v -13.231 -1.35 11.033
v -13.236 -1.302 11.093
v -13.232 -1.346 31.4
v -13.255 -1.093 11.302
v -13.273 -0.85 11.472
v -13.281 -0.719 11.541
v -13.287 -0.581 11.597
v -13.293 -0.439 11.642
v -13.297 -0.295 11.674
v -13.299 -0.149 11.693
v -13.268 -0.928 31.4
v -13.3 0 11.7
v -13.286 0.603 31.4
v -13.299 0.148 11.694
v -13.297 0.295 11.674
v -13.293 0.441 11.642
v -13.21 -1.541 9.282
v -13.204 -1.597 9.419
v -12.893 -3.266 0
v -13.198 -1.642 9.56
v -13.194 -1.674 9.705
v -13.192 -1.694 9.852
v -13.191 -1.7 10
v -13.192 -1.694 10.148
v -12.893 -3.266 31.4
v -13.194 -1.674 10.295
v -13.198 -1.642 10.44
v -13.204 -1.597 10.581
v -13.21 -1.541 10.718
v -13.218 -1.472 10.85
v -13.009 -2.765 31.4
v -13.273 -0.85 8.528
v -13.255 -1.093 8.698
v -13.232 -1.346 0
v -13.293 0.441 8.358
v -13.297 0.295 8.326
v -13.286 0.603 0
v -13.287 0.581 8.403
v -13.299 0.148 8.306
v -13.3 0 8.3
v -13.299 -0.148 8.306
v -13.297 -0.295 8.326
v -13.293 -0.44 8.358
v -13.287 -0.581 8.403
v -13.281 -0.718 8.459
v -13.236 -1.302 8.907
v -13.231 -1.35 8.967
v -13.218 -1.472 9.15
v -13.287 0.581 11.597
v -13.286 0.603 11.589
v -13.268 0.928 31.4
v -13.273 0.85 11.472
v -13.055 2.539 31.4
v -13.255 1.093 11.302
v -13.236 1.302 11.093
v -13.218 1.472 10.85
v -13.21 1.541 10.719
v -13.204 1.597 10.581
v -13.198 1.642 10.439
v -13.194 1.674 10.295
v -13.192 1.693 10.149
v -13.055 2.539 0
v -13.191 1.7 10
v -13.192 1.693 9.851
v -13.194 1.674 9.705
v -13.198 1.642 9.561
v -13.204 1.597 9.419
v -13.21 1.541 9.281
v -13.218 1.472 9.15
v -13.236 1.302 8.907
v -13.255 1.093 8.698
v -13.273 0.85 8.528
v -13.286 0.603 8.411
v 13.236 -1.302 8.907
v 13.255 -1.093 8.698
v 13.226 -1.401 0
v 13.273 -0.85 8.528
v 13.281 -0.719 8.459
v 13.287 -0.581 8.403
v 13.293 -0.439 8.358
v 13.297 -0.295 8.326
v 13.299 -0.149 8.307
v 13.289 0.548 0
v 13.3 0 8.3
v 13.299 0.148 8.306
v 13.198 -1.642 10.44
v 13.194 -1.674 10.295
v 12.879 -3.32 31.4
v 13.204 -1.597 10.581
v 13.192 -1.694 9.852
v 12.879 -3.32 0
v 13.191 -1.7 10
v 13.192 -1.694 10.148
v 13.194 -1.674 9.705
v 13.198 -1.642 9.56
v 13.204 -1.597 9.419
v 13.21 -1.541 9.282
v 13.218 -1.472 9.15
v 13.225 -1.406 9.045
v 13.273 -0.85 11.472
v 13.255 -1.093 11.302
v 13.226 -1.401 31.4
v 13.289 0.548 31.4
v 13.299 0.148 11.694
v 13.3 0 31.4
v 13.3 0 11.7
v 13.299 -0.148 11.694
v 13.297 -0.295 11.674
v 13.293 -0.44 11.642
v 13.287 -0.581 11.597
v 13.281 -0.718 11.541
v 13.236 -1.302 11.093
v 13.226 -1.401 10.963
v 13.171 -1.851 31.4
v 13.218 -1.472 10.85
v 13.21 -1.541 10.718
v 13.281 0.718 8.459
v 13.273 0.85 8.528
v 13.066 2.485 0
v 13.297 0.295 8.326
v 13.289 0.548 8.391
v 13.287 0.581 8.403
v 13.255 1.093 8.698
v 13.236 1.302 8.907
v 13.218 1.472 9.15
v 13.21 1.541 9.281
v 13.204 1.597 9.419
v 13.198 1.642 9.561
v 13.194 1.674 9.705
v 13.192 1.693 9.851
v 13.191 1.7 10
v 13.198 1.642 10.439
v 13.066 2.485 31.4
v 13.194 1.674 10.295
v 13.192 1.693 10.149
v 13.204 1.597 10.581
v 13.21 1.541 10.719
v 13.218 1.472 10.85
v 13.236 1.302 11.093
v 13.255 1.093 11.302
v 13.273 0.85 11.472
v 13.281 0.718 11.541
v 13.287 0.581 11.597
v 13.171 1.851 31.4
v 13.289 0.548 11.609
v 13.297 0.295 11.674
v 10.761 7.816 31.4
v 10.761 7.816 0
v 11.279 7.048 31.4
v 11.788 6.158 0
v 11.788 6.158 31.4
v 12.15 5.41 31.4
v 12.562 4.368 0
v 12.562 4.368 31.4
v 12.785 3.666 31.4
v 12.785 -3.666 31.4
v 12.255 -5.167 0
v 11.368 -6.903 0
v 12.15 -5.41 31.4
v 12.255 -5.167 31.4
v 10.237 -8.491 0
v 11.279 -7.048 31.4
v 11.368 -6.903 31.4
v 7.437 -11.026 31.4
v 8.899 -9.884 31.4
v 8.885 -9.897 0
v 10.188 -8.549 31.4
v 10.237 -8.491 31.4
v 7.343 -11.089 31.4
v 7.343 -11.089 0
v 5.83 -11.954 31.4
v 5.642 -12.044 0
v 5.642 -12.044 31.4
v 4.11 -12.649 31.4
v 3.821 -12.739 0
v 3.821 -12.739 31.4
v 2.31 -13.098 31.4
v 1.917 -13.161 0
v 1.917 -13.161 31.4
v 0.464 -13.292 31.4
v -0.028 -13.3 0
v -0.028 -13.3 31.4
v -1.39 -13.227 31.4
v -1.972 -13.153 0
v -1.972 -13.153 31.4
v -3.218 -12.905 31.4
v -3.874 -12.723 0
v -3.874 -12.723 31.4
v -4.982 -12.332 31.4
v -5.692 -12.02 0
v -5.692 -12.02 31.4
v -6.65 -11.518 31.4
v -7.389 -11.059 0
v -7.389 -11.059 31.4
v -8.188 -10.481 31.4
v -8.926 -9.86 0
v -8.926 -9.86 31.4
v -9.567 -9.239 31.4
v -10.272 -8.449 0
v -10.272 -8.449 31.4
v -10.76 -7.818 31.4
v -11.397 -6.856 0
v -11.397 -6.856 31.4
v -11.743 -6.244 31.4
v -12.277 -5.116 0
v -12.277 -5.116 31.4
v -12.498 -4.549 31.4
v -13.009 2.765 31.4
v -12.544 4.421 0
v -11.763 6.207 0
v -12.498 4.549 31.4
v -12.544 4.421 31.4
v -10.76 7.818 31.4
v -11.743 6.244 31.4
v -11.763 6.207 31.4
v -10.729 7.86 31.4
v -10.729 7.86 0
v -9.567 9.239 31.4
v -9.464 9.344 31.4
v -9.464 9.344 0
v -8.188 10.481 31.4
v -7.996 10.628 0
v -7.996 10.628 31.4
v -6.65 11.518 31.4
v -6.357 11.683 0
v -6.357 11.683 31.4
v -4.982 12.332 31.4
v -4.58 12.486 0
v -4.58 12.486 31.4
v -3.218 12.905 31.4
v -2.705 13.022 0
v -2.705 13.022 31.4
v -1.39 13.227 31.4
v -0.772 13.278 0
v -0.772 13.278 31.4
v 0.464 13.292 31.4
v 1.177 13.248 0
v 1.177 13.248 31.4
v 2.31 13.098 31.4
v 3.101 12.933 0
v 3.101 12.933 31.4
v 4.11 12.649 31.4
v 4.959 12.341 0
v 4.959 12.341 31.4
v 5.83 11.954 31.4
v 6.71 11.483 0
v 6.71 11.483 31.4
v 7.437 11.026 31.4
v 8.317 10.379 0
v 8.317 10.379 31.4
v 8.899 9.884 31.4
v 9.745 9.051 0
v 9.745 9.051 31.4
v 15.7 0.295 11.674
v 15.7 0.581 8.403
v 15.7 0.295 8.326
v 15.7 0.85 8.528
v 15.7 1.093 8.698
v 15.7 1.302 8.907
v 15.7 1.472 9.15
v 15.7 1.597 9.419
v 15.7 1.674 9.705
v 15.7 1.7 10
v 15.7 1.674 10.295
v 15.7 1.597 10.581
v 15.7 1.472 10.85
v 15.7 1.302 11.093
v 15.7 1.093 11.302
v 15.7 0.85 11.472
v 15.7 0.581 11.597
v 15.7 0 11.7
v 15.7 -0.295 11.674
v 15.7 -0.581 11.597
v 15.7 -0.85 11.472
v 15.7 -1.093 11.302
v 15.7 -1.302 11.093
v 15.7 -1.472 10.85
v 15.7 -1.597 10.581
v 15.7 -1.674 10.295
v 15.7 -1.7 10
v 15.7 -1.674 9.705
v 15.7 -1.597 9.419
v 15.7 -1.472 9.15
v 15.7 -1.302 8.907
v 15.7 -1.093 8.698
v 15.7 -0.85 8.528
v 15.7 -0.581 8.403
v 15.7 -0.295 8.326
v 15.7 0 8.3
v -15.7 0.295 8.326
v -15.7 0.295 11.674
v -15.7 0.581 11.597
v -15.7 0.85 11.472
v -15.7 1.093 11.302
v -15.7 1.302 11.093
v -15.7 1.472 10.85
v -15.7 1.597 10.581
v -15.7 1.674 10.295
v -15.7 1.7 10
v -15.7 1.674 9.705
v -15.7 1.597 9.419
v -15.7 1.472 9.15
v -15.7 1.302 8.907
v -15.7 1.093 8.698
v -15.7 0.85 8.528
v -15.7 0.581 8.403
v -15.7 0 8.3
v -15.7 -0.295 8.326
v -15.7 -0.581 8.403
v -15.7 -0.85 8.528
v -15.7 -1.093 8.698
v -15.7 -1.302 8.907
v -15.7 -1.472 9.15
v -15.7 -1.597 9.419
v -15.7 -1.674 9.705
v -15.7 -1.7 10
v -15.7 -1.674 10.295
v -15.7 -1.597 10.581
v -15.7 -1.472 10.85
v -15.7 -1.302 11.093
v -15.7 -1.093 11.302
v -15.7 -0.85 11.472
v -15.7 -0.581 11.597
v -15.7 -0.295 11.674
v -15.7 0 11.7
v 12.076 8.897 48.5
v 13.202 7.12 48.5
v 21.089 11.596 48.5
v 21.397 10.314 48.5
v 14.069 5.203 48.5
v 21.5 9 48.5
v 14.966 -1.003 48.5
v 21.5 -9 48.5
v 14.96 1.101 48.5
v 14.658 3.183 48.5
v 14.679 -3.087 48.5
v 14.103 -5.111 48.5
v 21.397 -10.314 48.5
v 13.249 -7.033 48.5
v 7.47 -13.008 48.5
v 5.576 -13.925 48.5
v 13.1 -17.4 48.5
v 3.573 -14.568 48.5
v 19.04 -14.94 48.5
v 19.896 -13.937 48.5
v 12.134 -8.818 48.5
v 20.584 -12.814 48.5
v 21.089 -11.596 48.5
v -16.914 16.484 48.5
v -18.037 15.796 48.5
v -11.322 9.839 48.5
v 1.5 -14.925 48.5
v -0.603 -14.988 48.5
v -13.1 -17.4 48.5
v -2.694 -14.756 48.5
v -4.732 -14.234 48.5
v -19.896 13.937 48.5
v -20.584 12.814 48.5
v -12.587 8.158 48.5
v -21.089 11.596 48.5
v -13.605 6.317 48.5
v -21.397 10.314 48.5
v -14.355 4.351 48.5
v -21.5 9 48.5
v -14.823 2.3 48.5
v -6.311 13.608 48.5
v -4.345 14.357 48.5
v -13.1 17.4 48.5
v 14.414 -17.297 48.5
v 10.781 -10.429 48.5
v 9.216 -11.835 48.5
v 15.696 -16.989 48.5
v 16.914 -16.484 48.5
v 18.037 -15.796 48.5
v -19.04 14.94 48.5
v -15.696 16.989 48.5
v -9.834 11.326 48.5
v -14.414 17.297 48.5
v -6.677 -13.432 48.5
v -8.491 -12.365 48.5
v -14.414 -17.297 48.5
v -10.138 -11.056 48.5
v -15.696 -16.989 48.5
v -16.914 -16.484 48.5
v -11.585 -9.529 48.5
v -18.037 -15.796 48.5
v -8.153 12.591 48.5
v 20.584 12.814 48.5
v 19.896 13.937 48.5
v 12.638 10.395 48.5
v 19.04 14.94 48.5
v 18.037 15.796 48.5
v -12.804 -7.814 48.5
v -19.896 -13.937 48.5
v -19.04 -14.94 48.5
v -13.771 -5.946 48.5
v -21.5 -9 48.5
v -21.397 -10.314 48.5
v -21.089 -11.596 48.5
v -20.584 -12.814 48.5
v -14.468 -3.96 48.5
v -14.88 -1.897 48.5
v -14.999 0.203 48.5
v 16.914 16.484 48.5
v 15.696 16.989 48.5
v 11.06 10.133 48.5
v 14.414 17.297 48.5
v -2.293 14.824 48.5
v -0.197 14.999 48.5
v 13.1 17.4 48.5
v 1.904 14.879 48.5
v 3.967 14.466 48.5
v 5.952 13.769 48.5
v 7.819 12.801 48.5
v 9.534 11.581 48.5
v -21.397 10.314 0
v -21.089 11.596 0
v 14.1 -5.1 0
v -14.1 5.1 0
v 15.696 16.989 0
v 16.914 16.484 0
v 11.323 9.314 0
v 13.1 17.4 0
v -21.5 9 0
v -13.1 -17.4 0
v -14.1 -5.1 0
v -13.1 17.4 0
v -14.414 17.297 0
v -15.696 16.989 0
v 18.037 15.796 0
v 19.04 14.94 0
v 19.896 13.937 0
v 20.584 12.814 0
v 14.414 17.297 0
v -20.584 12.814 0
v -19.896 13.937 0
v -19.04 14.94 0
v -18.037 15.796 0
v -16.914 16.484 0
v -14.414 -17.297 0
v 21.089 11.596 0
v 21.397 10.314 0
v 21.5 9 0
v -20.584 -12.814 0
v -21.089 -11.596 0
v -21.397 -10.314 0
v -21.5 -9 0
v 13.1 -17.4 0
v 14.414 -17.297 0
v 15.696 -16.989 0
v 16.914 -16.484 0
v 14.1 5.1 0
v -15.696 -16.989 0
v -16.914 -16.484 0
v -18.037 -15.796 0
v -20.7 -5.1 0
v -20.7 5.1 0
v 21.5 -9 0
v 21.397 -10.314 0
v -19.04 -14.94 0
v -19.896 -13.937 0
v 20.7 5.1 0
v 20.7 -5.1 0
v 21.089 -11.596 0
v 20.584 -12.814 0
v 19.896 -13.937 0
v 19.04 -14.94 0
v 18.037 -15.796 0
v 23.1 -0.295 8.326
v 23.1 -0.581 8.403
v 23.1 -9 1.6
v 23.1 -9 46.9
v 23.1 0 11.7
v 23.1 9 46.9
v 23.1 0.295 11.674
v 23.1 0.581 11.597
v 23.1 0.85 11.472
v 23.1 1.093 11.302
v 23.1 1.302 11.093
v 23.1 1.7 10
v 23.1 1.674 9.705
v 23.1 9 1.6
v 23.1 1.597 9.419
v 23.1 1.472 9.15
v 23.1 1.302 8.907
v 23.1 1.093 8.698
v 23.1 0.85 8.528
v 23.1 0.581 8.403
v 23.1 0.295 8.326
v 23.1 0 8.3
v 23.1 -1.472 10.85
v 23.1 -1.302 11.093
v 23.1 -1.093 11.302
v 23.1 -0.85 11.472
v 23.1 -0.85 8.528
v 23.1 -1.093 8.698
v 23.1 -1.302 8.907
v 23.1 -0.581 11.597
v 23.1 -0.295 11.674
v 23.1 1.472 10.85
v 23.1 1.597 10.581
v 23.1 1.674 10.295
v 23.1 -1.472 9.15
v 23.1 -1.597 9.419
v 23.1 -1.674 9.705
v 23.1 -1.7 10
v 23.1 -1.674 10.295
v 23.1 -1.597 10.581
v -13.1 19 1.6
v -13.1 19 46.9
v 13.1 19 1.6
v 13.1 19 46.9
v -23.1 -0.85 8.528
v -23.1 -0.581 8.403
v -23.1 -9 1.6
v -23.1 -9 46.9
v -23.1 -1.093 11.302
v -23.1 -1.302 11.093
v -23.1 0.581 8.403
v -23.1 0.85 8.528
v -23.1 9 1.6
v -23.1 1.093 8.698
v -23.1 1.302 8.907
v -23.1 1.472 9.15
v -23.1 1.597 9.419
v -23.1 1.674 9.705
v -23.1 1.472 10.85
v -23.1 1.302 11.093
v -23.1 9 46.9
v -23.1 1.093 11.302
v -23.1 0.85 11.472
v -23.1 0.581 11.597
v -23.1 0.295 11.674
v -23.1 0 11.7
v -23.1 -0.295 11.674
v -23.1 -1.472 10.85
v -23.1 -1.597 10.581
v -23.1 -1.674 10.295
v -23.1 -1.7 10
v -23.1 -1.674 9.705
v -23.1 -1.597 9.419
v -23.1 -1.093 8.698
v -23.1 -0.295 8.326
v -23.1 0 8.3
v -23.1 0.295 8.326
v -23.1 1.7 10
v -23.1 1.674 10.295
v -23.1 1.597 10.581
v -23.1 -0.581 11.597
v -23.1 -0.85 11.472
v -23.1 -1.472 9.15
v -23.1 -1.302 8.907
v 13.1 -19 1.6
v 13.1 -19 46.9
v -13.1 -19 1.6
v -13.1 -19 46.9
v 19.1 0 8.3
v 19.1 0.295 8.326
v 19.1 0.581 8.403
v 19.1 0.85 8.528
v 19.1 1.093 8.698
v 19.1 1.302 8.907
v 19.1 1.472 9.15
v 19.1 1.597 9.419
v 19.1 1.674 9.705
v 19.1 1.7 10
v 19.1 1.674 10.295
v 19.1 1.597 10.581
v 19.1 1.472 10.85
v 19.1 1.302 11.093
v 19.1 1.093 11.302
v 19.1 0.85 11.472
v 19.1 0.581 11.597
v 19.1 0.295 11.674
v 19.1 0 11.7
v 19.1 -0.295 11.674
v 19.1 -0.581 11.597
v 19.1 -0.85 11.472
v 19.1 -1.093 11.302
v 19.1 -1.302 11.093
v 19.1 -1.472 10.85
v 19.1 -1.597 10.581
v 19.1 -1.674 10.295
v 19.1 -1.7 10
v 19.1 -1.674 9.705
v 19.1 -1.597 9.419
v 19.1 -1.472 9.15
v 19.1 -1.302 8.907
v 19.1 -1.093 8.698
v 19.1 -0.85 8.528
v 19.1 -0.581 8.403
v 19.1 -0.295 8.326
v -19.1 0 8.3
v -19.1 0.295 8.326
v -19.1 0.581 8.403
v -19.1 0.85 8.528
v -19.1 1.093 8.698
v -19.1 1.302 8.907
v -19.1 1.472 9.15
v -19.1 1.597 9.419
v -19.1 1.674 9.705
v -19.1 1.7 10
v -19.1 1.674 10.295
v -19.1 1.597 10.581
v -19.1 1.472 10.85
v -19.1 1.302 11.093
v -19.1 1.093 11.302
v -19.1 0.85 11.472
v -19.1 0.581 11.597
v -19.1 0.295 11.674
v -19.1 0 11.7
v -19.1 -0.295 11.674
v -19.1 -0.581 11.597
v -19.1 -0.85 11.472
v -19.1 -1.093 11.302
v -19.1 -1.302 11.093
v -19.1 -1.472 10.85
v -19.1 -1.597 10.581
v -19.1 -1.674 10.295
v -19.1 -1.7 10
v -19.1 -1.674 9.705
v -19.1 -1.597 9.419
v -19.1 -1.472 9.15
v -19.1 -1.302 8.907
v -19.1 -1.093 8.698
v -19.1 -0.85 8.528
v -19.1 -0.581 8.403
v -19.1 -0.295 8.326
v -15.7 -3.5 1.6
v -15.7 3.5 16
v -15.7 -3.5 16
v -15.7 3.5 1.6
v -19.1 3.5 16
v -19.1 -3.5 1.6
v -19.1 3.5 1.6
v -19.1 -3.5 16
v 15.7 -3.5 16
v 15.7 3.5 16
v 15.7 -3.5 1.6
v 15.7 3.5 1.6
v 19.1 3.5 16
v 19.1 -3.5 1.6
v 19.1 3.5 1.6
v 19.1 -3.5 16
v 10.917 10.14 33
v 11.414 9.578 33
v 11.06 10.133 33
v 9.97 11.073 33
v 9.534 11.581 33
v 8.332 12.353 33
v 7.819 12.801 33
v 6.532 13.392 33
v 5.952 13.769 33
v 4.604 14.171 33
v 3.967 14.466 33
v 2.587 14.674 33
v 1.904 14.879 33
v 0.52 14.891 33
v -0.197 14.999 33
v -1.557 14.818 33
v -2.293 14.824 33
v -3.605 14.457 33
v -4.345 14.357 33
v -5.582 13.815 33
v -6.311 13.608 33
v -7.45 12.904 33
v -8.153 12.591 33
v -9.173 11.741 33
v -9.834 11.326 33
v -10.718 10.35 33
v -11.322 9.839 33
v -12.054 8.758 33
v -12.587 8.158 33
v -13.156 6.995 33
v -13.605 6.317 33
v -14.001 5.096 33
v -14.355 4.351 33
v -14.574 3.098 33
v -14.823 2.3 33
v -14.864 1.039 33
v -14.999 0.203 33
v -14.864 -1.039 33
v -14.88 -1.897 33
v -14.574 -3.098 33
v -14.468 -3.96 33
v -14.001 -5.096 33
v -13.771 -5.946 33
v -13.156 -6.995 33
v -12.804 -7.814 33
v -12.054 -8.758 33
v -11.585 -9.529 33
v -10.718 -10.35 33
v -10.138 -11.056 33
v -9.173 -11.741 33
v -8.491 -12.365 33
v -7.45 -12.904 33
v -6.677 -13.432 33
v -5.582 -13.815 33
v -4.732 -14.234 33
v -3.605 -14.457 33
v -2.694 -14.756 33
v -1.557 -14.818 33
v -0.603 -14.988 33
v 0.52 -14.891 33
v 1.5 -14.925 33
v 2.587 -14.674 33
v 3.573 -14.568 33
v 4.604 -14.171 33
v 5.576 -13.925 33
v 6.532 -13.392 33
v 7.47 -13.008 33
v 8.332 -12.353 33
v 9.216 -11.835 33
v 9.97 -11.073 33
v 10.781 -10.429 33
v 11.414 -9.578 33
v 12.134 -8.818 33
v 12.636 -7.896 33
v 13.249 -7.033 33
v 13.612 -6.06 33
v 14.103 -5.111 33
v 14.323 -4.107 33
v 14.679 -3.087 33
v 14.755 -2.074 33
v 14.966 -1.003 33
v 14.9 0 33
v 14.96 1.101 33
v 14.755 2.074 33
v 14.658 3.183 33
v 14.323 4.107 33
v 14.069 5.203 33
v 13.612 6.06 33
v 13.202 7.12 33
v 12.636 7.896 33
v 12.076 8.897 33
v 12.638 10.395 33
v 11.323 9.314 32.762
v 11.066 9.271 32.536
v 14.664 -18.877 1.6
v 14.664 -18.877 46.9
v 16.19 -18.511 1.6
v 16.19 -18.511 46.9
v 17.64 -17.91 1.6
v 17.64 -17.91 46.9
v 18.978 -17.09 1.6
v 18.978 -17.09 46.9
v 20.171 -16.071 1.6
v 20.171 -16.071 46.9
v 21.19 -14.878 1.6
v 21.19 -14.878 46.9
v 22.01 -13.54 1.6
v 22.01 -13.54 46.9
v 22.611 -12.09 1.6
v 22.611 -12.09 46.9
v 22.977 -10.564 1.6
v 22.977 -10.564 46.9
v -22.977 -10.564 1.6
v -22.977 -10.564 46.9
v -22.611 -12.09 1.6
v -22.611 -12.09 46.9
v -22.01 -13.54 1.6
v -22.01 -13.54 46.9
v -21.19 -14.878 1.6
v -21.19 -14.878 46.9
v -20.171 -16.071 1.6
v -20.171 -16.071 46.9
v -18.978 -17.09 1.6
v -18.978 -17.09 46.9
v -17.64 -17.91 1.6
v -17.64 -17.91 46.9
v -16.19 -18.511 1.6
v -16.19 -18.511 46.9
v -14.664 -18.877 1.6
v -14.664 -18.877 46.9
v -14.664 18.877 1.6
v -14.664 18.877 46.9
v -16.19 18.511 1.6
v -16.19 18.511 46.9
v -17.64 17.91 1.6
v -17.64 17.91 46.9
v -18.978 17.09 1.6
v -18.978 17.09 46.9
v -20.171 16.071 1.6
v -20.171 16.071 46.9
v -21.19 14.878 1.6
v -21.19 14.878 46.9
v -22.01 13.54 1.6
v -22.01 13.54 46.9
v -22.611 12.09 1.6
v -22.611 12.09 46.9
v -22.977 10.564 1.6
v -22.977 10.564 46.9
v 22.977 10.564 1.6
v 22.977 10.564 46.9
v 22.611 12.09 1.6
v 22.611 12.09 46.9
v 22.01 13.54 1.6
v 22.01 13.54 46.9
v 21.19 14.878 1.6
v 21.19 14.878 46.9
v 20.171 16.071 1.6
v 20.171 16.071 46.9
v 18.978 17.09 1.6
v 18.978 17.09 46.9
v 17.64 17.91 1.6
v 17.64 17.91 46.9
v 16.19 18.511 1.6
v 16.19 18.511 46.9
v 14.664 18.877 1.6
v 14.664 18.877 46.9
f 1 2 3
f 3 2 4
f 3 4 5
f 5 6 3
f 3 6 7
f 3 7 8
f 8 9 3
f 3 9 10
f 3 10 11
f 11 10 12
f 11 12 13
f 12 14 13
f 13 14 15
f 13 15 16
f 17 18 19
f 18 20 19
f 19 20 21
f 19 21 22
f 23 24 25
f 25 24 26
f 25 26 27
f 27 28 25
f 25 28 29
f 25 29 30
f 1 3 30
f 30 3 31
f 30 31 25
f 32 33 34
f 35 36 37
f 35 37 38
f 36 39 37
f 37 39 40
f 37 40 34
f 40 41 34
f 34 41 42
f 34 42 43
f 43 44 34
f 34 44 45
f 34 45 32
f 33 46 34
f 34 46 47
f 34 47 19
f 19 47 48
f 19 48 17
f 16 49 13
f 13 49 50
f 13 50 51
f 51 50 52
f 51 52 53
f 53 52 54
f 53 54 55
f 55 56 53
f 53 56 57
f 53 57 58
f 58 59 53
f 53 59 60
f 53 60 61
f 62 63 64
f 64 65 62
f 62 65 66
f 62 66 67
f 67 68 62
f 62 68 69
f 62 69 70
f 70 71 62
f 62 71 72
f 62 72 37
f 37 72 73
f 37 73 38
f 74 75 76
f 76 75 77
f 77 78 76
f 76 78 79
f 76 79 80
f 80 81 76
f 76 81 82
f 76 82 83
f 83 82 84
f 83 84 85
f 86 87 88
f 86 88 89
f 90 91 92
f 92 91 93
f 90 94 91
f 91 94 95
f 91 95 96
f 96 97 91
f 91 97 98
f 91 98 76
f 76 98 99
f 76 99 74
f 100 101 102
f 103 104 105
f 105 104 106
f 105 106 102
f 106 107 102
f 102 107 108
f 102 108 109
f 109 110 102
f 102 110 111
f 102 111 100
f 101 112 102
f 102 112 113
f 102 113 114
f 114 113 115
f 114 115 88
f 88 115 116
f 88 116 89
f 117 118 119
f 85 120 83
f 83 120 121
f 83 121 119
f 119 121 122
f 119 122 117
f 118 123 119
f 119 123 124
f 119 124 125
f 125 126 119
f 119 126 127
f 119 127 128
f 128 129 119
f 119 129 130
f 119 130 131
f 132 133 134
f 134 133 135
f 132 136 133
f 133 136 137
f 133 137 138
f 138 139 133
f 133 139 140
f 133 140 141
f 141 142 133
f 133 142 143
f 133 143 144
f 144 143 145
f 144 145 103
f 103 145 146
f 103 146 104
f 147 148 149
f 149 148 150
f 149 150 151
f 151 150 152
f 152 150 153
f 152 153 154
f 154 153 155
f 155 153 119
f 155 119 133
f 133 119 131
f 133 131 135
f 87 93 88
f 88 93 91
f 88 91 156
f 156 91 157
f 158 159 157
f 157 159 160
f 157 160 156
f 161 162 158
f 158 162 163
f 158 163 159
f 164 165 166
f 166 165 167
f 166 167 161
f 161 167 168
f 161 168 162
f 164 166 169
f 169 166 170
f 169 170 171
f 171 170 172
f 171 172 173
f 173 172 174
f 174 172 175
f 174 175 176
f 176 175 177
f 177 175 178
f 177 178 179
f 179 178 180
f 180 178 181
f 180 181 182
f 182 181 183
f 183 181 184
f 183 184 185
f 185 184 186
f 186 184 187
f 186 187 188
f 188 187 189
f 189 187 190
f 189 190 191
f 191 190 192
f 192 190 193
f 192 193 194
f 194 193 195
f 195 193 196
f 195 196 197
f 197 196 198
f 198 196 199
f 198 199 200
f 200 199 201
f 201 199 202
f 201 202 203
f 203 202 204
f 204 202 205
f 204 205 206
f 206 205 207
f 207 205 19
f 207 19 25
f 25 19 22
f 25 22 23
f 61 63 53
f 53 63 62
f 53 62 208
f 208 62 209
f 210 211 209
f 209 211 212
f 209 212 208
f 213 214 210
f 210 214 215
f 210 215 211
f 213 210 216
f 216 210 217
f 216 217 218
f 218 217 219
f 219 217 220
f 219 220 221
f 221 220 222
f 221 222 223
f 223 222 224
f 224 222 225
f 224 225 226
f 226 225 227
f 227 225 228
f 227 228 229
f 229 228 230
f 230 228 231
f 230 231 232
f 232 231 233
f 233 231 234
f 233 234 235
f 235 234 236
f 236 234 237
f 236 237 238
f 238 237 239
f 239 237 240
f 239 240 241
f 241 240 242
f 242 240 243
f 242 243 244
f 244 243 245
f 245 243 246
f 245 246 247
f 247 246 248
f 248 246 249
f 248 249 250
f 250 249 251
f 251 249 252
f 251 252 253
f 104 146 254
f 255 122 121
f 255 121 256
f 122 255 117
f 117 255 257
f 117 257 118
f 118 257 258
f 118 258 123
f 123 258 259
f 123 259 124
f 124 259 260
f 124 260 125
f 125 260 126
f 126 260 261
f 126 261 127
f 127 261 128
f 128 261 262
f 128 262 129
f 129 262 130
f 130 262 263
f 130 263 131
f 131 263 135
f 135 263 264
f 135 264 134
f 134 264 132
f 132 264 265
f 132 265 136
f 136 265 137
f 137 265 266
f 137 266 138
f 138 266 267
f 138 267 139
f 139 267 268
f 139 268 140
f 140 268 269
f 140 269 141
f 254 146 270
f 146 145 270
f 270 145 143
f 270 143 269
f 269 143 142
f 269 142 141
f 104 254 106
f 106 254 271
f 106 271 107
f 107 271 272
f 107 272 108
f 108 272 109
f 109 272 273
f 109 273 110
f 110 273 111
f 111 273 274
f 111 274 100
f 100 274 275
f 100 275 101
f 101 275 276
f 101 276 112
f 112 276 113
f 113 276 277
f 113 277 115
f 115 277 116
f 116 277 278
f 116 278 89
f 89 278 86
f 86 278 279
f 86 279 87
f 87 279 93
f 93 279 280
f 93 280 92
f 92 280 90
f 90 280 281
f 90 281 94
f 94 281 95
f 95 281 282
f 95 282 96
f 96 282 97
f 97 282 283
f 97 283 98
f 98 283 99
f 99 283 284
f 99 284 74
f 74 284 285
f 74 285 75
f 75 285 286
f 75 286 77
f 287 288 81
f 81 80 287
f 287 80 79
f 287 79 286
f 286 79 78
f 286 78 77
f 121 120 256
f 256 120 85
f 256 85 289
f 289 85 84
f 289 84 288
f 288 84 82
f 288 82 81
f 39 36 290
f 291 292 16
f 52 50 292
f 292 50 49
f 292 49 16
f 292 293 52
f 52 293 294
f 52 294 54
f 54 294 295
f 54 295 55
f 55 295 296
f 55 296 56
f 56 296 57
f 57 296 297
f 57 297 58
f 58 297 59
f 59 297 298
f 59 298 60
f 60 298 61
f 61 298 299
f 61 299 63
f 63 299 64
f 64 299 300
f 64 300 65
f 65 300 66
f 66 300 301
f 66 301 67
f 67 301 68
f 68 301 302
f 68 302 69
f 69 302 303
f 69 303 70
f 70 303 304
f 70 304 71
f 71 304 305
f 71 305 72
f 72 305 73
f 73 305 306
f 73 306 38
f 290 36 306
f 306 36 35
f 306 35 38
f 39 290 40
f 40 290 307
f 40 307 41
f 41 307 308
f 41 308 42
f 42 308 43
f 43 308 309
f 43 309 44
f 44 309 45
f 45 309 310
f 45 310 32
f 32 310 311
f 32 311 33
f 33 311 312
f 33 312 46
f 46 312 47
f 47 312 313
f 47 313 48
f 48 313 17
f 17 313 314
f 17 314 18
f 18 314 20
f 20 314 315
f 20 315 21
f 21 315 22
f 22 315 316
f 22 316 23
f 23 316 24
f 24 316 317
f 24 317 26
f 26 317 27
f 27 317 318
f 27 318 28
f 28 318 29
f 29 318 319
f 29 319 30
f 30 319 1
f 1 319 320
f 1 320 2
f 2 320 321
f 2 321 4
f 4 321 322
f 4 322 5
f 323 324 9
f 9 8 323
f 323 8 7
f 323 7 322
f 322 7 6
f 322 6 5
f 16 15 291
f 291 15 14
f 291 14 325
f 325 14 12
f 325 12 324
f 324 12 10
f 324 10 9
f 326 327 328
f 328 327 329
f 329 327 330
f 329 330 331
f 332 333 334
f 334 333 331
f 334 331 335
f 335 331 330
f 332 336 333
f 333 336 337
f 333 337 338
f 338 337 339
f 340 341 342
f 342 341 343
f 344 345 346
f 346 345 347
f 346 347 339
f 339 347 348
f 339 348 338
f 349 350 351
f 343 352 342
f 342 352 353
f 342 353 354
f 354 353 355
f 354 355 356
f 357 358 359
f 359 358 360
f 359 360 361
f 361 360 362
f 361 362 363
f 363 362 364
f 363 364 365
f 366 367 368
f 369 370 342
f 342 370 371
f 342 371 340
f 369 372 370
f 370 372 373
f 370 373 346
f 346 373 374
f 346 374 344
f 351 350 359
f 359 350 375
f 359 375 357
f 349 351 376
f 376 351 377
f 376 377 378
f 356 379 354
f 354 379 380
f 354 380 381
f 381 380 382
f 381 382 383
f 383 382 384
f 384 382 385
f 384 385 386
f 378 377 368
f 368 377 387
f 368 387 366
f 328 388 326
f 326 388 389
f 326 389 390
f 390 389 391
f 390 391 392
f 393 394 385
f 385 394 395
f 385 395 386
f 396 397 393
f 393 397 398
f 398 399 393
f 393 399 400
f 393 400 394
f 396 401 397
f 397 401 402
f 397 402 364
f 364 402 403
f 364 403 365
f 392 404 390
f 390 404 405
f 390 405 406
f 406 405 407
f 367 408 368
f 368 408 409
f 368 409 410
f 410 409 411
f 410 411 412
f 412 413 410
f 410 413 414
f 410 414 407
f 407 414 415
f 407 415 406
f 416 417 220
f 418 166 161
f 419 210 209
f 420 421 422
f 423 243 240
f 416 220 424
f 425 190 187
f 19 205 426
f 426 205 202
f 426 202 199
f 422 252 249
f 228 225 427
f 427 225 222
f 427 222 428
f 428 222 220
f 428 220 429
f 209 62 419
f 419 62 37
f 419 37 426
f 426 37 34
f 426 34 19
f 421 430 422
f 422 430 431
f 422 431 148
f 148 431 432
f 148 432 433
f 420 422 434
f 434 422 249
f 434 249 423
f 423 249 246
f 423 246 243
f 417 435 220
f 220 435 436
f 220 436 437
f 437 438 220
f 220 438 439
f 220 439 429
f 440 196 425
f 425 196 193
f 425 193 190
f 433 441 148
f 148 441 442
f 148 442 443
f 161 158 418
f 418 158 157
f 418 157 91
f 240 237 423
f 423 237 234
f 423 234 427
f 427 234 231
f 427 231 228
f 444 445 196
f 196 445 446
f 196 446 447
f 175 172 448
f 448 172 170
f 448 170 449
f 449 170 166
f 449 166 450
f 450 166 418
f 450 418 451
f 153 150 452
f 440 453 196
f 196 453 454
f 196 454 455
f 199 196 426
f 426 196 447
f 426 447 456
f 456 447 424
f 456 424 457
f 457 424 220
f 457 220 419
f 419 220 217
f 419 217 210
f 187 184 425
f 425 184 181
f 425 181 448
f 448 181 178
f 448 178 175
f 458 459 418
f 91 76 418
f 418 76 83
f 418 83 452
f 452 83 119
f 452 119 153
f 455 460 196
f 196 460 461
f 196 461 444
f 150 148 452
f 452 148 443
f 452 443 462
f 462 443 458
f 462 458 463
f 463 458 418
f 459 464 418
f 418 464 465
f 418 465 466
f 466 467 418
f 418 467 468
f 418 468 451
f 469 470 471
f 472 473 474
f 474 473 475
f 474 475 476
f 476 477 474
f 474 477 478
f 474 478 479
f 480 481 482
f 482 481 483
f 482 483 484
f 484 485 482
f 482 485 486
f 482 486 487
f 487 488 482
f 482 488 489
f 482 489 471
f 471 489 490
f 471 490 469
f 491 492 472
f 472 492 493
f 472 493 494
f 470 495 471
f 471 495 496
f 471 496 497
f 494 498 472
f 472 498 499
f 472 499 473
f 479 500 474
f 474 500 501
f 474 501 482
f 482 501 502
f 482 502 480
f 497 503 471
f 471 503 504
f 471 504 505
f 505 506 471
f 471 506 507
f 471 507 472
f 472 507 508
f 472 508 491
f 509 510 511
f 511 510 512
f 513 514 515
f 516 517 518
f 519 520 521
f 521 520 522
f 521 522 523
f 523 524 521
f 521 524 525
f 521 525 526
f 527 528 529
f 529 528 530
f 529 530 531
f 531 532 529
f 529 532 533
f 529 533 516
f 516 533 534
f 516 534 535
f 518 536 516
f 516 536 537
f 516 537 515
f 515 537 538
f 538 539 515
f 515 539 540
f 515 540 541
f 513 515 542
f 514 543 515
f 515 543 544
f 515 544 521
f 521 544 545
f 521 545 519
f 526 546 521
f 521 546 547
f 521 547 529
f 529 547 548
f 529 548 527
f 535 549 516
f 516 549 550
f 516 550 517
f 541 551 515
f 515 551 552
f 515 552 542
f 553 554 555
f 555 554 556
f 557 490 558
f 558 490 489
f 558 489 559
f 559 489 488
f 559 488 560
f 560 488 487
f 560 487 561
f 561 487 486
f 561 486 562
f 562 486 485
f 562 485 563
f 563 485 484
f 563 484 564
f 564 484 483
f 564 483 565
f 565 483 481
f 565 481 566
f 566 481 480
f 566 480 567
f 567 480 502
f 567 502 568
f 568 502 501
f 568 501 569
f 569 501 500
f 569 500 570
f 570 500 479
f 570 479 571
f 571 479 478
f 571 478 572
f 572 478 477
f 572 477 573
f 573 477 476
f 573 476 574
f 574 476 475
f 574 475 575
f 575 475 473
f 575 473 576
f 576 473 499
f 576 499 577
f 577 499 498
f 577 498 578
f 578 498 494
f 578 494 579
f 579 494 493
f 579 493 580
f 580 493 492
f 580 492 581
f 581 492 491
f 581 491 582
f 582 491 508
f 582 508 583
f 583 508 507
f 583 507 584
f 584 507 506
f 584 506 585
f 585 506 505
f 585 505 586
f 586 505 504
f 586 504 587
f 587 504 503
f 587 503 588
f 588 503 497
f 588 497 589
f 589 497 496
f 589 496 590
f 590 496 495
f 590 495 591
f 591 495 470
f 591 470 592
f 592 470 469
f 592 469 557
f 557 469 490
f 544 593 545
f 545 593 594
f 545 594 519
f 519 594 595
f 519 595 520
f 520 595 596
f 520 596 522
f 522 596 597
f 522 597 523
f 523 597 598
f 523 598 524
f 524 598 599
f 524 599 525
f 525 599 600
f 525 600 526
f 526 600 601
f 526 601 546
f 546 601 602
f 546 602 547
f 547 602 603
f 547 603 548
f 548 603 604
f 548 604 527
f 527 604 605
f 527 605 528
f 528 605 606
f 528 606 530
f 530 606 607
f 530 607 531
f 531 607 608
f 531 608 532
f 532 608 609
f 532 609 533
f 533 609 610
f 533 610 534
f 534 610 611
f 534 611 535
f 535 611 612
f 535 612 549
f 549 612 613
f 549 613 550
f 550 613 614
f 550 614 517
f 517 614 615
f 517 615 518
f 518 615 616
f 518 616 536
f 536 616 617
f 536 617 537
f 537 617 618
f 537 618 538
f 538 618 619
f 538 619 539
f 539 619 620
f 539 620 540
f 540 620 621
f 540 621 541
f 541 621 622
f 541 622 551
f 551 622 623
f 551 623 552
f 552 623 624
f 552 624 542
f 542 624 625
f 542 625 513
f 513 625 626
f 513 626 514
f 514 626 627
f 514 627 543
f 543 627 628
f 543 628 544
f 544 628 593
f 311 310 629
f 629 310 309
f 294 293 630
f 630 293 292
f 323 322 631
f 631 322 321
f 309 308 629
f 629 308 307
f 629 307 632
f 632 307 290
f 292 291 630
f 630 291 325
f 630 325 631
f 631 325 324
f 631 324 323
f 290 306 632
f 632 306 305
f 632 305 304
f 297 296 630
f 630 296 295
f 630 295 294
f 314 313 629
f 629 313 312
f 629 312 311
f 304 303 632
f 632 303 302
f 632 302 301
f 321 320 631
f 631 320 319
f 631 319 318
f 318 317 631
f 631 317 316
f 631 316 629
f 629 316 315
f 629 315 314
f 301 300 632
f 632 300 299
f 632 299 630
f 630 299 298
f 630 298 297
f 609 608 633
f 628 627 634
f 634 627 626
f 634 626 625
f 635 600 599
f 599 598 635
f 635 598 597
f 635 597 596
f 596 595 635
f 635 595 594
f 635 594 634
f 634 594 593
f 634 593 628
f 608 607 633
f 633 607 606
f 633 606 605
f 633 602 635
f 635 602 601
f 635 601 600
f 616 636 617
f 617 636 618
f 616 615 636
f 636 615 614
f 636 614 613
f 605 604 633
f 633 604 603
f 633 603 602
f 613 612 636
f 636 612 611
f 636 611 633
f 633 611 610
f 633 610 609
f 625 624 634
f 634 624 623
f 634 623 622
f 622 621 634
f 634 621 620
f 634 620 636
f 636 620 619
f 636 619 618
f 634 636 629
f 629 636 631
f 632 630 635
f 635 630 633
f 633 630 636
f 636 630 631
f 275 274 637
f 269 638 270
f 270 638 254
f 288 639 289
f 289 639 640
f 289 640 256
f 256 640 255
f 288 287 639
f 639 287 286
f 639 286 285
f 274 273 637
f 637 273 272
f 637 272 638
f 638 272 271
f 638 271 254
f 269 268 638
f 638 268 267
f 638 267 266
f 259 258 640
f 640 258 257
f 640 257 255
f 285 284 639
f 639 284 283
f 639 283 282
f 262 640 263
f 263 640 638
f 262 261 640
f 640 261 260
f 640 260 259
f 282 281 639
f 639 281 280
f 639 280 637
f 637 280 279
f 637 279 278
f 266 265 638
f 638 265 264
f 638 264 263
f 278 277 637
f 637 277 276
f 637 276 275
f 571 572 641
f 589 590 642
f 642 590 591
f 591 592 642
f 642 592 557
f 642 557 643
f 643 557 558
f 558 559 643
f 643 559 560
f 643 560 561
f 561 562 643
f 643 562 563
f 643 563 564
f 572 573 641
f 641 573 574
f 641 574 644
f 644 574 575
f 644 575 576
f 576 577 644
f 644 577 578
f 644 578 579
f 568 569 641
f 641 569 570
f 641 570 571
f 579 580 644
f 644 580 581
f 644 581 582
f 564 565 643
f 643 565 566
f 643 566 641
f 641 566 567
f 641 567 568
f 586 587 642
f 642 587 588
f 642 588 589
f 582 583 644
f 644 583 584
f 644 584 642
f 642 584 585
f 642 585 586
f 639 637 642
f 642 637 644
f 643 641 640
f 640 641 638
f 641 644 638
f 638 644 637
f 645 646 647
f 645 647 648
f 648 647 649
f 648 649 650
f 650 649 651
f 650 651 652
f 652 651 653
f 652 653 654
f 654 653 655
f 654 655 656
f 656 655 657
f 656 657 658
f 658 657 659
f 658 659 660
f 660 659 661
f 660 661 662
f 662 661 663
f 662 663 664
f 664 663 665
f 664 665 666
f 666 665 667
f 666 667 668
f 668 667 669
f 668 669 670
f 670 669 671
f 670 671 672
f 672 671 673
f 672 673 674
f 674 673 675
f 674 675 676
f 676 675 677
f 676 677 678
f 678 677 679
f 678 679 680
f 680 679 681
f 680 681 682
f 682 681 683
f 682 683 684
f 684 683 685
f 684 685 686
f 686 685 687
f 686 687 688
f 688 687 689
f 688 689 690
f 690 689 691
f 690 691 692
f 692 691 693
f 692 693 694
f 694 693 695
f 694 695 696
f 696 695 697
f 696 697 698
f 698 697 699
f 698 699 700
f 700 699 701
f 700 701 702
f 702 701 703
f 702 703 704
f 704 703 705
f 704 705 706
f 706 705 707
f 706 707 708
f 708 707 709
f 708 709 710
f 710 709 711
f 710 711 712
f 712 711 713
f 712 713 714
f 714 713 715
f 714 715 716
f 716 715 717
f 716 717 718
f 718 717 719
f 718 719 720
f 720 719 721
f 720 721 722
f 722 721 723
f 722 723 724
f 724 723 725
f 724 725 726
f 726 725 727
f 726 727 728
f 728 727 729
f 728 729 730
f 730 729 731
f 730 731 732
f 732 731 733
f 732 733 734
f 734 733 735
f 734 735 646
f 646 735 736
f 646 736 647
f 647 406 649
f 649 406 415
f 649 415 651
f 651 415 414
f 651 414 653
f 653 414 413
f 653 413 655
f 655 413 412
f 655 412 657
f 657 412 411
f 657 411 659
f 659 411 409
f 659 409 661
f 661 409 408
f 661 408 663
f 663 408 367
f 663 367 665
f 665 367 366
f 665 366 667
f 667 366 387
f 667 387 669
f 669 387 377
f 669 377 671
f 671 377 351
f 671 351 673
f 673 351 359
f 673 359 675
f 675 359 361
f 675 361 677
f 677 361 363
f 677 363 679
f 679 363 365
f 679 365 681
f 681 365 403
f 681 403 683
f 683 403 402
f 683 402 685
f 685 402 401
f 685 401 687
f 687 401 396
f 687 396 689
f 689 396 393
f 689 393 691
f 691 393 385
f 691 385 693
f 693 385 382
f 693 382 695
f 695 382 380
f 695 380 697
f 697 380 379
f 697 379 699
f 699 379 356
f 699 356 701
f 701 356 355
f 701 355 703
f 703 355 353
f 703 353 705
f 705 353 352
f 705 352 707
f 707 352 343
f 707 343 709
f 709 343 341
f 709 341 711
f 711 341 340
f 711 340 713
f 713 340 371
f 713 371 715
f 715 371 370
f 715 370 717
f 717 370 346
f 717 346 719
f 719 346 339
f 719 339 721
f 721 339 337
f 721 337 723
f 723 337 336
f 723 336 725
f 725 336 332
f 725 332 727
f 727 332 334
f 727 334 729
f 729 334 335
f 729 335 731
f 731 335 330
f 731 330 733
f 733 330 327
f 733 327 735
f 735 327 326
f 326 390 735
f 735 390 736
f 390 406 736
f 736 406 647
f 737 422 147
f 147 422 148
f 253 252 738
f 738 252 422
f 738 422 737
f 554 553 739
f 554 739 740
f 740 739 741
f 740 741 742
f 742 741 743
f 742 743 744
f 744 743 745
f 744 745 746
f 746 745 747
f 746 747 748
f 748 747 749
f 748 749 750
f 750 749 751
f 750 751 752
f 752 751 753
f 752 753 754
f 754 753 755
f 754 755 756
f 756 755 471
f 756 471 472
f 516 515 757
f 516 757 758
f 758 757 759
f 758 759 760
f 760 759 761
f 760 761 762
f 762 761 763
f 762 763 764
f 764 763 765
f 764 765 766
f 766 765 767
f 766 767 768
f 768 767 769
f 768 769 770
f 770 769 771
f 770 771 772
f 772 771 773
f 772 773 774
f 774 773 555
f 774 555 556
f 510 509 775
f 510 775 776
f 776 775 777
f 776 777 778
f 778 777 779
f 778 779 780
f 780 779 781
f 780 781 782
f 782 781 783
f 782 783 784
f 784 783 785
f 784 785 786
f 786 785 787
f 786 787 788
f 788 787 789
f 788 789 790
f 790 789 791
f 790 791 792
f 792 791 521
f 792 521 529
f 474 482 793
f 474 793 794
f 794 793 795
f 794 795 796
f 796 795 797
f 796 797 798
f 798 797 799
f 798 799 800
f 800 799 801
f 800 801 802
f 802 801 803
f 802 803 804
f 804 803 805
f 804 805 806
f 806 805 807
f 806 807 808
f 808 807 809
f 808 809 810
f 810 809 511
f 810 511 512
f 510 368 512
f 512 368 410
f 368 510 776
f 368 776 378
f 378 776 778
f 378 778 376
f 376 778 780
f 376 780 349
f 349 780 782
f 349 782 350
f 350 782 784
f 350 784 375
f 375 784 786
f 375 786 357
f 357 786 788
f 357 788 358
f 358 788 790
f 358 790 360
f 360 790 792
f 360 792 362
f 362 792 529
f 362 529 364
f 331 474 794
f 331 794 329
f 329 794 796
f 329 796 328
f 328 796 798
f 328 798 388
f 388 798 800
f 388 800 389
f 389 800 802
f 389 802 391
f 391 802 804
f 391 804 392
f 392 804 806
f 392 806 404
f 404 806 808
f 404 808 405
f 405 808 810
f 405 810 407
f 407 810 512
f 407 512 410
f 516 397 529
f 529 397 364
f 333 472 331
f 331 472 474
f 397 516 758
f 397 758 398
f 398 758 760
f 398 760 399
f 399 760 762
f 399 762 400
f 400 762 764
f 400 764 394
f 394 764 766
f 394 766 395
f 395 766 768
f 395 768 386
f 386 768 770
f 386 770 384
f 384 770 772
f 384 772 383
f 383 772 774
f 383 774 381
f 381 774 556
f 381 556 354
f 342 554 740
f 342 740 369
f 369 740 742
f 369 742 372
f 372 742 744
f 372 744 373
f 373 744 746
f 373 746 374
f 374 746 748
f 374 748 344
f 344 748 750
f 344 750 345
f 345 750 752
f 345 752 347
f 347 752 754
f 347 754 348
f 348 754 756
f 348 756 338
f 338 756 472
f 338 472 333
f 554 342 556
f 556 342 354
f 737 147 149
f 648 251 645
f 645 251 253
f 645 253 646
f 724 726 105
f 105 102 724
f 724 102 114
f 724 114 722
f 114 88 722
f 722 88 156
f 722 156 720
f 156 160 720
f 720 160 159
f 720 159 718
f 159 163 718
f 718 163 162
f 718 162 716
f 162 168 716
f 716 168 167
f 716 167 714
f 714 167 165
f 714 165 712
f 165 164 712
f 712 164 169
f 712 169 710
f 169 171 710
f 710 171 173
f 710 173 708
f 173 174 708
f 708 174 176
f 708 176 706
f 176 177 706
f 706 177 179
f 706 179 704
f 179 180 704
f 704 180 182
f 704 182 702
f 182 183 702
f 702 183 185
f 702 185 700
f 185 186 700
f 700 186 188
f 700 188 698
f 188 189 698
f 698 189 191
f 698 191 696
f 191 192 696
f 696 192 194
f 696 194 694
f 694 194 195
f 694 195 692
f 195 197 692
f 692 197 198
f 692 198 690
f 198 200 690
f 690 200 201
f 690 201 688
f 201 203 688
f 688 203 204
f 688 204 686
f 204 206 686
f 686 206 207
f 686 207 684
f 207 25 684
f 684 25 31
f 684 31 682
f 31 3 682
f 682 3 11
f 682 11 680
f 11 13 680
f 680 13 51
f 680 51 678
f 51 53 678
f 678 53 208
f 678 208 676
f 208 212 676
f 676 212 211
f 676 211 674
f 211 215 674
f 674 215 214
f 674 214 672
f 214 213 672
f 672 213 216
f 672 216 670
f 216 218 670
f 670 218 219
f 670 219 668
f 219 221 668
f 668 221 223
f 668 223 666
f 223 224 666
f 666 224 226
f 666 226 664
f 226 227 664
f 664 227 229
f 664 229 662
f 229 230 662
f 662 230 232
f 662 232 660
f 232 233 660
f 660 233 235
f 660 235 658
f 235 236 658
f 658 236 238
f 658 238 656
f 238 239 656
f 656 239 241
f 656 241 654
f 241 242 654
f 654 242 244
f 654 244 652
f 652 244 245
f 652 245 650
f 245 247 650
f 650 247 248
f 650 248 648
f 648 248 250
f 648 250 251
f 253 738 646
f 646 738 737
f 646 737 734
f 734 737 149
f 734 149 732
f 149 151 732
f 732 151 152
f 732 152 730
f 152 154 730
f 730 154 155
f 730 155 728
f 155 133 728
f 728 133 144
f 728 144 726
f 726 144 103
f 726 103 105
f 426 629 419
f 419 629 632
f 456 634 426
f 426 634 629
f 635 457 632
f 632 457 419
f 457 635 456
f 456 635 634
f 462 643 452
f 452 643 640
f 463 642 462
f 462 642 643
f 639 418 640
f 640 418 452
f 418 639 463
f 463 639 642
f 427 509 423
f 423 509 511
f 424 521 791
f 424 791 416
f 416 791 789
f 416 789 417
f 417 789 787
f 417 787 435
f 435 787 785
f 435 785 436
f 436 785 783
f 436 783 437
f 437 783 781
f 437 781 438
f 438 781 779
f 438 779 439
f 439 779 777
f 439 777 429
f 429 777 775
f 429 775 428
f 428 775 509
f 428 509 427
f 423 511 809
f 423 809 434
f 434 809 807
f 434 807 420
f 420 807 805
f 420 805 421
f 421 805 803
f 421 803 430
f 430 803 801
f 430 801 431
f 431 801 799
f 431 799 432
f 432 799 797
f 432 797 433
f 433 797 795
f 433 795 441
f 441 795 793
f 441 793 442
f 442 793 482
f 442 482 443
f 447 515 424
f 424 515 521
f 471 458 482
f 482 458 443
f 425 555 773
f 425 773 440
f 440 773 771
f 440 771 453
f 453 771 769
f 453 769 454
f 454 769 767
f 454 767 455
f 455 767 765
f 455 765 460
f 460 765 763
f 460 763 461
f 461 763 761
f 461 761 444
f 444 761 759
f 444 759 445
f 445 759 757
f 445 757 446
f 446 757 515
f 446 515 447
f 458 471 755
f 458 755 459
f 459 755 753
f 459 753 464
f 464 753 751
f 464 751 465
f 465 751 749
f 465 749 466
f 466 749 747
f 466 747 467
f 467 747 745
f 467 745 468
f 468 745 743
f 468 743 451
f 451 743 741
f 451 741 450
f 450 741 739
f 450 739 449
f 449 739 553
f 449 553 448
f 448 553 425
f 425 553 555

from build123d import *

# Parameters (mm, degrees)
SKETCH2_W           = 46.2
SKETCH2_H           = 38
SKETCH2_R           = 13.3
BOSS_EXTRUDE1_DEPTH = 48.5
SKETCH3_R           = 1.7
CUT_EXTRUDE1_DEPTH  = 70.625354577
SKETCH4_W           = 3.4
SKETCH4_H           = 7
CUT_EXTRUDE2_DEPTH  = 16
CUT_EXTRUDE3_DEPTH  = 15.5
CUT_EXTRUDE4_DEPTH  = 45.537736882
FILLET1_R           = 10
CHAMFER1_SIZE       = 1.6
CHAMFER2_SIZE       = 1.6
CHAMFER3_SIZE       = 1.6
CHAMFER4_SIZE       = 1.6


with BuildPart() as part:
    # Sketch2 → Boss-Extrude1 (new body)
    with BuildSketch(Plane.XY):
        Rectangle(SKETCH2_W, SKETCH2_H)
        with Locations(Location((0, 0, 0), (0, 0, 180))):
            Circle(SKETCH2_R, mode=Mode.SUBTRACT)
    extrude(amount=BOSS_EXTRUDE1_DEPTH)

    # Sketch3 → Cut-Extrude1 (cut, through all)
    with BuildSketch(Plane(origin=(23.1, 0, 0), x_dir=(0, 0, -1), z_dir=(1, 0, 0))):
        with Locations((-10, 0)):
            Circle(SKETCH3_R)
    extrude(amount=-CUT_EXTRUDE1_DEPTH, mode=Mode.SUBTRACT)

    # Sketch4 → Cut-Extrude2 (cut)
    with BuildSketch(Plane(origin=(0, 0, 0), x_dir=(-1, 0, 0), z_dir=(0, 0, -1))):
        with Locations((-17.4, 0)):
            Rectangle(SKETCH4_W, SKETCH4_H)
        with Locations((17.4, 0)):
            Rectangle(SKETCH4_W, SKETCH4_H)
    extrude(amount=-CUT_EXTRUDE2_DEPTH, mode=Mode.SUBTRACT)

    # Sketch1 → Cut-Revolve1 (revolve, cut)
    with BuildSketch(Plane(origin=(0, 0, 0), x_dir=(0, 0, -1), z_dir=(1, 0, 0)), mode=Mode.PRIVATE) as cut_revolve1_sk:
        Polygon((0, 0), (0, 13.3), (-33, 13.3), (-33, 15), (-48.5, 15), (-48.5, 0), align=None)
    revolve(cut_revolve1_sk.sketch.rotate(Axis((0, 0, 1000), (0, 0, -1)), 90), axis=Axis((0, 0, 1000), (0, 0, -1)), mode=Mode.SUBTRACT)

    # Sketch5 → Cut-Extrude3 (cut)
    with BuildSketch(Plane.XY.offset(48.5)):
        Polygon((12.638406773, 10.39522635), (11.06006345, 10.132867141), (12.076444851, 8.897161332), align=None)
    extrude(amount=-CUT_EXTRUDE3_DEPTH, mode=Mode.SUBTRACT)

    # Sketch6 → Cut-Extrude4 (cut, through all)
    with BuildSketch(Plane.XY.offset(33)):
        Polygon((11.32335828, 9.313584733), (9.745014957, 9.051225524), (10.761396359, 7.815519715), align=None)
    extrude(amount=-CUT_EXTRUDE4_DEPTH, mode=Mode.SUBTRACT)

    # Fillet1
    fillet1_edges = [part.edges().sort_by_distance(p)[0] for p in [
        (23.1, -19, 24.25),
        (-23.1, -19, 24.25),
        (-23.1, 19, 24.25),
        (23.1, 19, 24.25),
    ]]
    fillet(fillet1_edges, radius=FILLET1_R)

    # Chamfer1
    chamfer1_edges = [part.edges().sort_by_distance(p)[0] for p in [
        (0, 19, 48.5),
        (-23.1, 0, 48.5),
        (20.171067812, 16.071067812, 48.5),
        (-20.171067812, 16.071067812, 48.5),
        (-20.171067812, -16.071067812, 48.5),
        (20.171067812, -16.071067812, 48.5),
        (23.1, 0, 48.5),
        (0, -19, 48.5),
    ]]
    chamfer(chamfer1_edges, length=CHAMFER1_SIZE)

    # Chamfer2
    # the kernel refuses this chamfer: 1.6 mm, written as the material it takes off along each edge
    with BuildSketch(Plane(origin=(0, 0, 33), x_dir=(-1, 0, 0), z_dir=(0, 1, 0))) as chamfer2_piece_1:
        Polygon((13.3, -CHAMFER2_SIZE), (13.3 + CHAMFER2_SIZE, 0), (13.3, 0), align=None)
    revolve(axis=Axis((0, 0, 33), (0, 0, 1)), revolution_arc=233.756192623, mode=Mode.SUBTRACT)
    with BuildSketch(Plane(origin=(0, 0, 33), x_dir=(0.905245194595796, 0.42488955936951367, 0), z_dir=(0.42488955936951367, -0.905245194595796, 0))) as chamfer2_piece_2:
        Polygon((13.3, -CHAMFER2_SIZE), (13.3 + CHAMFER2_SIZE, 0), (13.3, 0), align=None)
    revolve(axis=Axis((0, 0, 33), (0, 0, 1)), revolution_arc=154.856326918, mode=Mode.SUBTRACT)

    # Chamfer3
    chamfer3_edges = [part.edges().sort_by_distance(p)[0] for p in [
        (15.7, 0, 0),
        (17.4, 3.5, 0),
        (19.1, 0, 0),
        (17.4, -3.5, 0),
        (-17.4, -3.5, 0),
        (-19.1, 0, 0),
        (-17.4, 3.5, 0),
        (-15.7, 0, 0),
    ]]
    chamfer(chamfer3_edges, length=CHAMFER3_SIZE)

    # Chamfer4
    chamfer4_edges = [part.edges().sort_by_distance(p)[0] for p in [
        (23.1, 0, 0),
        (0, -19, 0),
        (-23.1, 0, 0),
        (0, 19, 0),
        (20.171067812, 16.071067812, 0),
        (-20.171067812, 16.071067812, 0),
        (-20.171067812, -16.071067812, 0),
        (20.171067812, -16.071067812, 0),
    ]]
    chamfer(chamfer4_edges, length=CHAMFER4_SIZE)


solid = part.part
